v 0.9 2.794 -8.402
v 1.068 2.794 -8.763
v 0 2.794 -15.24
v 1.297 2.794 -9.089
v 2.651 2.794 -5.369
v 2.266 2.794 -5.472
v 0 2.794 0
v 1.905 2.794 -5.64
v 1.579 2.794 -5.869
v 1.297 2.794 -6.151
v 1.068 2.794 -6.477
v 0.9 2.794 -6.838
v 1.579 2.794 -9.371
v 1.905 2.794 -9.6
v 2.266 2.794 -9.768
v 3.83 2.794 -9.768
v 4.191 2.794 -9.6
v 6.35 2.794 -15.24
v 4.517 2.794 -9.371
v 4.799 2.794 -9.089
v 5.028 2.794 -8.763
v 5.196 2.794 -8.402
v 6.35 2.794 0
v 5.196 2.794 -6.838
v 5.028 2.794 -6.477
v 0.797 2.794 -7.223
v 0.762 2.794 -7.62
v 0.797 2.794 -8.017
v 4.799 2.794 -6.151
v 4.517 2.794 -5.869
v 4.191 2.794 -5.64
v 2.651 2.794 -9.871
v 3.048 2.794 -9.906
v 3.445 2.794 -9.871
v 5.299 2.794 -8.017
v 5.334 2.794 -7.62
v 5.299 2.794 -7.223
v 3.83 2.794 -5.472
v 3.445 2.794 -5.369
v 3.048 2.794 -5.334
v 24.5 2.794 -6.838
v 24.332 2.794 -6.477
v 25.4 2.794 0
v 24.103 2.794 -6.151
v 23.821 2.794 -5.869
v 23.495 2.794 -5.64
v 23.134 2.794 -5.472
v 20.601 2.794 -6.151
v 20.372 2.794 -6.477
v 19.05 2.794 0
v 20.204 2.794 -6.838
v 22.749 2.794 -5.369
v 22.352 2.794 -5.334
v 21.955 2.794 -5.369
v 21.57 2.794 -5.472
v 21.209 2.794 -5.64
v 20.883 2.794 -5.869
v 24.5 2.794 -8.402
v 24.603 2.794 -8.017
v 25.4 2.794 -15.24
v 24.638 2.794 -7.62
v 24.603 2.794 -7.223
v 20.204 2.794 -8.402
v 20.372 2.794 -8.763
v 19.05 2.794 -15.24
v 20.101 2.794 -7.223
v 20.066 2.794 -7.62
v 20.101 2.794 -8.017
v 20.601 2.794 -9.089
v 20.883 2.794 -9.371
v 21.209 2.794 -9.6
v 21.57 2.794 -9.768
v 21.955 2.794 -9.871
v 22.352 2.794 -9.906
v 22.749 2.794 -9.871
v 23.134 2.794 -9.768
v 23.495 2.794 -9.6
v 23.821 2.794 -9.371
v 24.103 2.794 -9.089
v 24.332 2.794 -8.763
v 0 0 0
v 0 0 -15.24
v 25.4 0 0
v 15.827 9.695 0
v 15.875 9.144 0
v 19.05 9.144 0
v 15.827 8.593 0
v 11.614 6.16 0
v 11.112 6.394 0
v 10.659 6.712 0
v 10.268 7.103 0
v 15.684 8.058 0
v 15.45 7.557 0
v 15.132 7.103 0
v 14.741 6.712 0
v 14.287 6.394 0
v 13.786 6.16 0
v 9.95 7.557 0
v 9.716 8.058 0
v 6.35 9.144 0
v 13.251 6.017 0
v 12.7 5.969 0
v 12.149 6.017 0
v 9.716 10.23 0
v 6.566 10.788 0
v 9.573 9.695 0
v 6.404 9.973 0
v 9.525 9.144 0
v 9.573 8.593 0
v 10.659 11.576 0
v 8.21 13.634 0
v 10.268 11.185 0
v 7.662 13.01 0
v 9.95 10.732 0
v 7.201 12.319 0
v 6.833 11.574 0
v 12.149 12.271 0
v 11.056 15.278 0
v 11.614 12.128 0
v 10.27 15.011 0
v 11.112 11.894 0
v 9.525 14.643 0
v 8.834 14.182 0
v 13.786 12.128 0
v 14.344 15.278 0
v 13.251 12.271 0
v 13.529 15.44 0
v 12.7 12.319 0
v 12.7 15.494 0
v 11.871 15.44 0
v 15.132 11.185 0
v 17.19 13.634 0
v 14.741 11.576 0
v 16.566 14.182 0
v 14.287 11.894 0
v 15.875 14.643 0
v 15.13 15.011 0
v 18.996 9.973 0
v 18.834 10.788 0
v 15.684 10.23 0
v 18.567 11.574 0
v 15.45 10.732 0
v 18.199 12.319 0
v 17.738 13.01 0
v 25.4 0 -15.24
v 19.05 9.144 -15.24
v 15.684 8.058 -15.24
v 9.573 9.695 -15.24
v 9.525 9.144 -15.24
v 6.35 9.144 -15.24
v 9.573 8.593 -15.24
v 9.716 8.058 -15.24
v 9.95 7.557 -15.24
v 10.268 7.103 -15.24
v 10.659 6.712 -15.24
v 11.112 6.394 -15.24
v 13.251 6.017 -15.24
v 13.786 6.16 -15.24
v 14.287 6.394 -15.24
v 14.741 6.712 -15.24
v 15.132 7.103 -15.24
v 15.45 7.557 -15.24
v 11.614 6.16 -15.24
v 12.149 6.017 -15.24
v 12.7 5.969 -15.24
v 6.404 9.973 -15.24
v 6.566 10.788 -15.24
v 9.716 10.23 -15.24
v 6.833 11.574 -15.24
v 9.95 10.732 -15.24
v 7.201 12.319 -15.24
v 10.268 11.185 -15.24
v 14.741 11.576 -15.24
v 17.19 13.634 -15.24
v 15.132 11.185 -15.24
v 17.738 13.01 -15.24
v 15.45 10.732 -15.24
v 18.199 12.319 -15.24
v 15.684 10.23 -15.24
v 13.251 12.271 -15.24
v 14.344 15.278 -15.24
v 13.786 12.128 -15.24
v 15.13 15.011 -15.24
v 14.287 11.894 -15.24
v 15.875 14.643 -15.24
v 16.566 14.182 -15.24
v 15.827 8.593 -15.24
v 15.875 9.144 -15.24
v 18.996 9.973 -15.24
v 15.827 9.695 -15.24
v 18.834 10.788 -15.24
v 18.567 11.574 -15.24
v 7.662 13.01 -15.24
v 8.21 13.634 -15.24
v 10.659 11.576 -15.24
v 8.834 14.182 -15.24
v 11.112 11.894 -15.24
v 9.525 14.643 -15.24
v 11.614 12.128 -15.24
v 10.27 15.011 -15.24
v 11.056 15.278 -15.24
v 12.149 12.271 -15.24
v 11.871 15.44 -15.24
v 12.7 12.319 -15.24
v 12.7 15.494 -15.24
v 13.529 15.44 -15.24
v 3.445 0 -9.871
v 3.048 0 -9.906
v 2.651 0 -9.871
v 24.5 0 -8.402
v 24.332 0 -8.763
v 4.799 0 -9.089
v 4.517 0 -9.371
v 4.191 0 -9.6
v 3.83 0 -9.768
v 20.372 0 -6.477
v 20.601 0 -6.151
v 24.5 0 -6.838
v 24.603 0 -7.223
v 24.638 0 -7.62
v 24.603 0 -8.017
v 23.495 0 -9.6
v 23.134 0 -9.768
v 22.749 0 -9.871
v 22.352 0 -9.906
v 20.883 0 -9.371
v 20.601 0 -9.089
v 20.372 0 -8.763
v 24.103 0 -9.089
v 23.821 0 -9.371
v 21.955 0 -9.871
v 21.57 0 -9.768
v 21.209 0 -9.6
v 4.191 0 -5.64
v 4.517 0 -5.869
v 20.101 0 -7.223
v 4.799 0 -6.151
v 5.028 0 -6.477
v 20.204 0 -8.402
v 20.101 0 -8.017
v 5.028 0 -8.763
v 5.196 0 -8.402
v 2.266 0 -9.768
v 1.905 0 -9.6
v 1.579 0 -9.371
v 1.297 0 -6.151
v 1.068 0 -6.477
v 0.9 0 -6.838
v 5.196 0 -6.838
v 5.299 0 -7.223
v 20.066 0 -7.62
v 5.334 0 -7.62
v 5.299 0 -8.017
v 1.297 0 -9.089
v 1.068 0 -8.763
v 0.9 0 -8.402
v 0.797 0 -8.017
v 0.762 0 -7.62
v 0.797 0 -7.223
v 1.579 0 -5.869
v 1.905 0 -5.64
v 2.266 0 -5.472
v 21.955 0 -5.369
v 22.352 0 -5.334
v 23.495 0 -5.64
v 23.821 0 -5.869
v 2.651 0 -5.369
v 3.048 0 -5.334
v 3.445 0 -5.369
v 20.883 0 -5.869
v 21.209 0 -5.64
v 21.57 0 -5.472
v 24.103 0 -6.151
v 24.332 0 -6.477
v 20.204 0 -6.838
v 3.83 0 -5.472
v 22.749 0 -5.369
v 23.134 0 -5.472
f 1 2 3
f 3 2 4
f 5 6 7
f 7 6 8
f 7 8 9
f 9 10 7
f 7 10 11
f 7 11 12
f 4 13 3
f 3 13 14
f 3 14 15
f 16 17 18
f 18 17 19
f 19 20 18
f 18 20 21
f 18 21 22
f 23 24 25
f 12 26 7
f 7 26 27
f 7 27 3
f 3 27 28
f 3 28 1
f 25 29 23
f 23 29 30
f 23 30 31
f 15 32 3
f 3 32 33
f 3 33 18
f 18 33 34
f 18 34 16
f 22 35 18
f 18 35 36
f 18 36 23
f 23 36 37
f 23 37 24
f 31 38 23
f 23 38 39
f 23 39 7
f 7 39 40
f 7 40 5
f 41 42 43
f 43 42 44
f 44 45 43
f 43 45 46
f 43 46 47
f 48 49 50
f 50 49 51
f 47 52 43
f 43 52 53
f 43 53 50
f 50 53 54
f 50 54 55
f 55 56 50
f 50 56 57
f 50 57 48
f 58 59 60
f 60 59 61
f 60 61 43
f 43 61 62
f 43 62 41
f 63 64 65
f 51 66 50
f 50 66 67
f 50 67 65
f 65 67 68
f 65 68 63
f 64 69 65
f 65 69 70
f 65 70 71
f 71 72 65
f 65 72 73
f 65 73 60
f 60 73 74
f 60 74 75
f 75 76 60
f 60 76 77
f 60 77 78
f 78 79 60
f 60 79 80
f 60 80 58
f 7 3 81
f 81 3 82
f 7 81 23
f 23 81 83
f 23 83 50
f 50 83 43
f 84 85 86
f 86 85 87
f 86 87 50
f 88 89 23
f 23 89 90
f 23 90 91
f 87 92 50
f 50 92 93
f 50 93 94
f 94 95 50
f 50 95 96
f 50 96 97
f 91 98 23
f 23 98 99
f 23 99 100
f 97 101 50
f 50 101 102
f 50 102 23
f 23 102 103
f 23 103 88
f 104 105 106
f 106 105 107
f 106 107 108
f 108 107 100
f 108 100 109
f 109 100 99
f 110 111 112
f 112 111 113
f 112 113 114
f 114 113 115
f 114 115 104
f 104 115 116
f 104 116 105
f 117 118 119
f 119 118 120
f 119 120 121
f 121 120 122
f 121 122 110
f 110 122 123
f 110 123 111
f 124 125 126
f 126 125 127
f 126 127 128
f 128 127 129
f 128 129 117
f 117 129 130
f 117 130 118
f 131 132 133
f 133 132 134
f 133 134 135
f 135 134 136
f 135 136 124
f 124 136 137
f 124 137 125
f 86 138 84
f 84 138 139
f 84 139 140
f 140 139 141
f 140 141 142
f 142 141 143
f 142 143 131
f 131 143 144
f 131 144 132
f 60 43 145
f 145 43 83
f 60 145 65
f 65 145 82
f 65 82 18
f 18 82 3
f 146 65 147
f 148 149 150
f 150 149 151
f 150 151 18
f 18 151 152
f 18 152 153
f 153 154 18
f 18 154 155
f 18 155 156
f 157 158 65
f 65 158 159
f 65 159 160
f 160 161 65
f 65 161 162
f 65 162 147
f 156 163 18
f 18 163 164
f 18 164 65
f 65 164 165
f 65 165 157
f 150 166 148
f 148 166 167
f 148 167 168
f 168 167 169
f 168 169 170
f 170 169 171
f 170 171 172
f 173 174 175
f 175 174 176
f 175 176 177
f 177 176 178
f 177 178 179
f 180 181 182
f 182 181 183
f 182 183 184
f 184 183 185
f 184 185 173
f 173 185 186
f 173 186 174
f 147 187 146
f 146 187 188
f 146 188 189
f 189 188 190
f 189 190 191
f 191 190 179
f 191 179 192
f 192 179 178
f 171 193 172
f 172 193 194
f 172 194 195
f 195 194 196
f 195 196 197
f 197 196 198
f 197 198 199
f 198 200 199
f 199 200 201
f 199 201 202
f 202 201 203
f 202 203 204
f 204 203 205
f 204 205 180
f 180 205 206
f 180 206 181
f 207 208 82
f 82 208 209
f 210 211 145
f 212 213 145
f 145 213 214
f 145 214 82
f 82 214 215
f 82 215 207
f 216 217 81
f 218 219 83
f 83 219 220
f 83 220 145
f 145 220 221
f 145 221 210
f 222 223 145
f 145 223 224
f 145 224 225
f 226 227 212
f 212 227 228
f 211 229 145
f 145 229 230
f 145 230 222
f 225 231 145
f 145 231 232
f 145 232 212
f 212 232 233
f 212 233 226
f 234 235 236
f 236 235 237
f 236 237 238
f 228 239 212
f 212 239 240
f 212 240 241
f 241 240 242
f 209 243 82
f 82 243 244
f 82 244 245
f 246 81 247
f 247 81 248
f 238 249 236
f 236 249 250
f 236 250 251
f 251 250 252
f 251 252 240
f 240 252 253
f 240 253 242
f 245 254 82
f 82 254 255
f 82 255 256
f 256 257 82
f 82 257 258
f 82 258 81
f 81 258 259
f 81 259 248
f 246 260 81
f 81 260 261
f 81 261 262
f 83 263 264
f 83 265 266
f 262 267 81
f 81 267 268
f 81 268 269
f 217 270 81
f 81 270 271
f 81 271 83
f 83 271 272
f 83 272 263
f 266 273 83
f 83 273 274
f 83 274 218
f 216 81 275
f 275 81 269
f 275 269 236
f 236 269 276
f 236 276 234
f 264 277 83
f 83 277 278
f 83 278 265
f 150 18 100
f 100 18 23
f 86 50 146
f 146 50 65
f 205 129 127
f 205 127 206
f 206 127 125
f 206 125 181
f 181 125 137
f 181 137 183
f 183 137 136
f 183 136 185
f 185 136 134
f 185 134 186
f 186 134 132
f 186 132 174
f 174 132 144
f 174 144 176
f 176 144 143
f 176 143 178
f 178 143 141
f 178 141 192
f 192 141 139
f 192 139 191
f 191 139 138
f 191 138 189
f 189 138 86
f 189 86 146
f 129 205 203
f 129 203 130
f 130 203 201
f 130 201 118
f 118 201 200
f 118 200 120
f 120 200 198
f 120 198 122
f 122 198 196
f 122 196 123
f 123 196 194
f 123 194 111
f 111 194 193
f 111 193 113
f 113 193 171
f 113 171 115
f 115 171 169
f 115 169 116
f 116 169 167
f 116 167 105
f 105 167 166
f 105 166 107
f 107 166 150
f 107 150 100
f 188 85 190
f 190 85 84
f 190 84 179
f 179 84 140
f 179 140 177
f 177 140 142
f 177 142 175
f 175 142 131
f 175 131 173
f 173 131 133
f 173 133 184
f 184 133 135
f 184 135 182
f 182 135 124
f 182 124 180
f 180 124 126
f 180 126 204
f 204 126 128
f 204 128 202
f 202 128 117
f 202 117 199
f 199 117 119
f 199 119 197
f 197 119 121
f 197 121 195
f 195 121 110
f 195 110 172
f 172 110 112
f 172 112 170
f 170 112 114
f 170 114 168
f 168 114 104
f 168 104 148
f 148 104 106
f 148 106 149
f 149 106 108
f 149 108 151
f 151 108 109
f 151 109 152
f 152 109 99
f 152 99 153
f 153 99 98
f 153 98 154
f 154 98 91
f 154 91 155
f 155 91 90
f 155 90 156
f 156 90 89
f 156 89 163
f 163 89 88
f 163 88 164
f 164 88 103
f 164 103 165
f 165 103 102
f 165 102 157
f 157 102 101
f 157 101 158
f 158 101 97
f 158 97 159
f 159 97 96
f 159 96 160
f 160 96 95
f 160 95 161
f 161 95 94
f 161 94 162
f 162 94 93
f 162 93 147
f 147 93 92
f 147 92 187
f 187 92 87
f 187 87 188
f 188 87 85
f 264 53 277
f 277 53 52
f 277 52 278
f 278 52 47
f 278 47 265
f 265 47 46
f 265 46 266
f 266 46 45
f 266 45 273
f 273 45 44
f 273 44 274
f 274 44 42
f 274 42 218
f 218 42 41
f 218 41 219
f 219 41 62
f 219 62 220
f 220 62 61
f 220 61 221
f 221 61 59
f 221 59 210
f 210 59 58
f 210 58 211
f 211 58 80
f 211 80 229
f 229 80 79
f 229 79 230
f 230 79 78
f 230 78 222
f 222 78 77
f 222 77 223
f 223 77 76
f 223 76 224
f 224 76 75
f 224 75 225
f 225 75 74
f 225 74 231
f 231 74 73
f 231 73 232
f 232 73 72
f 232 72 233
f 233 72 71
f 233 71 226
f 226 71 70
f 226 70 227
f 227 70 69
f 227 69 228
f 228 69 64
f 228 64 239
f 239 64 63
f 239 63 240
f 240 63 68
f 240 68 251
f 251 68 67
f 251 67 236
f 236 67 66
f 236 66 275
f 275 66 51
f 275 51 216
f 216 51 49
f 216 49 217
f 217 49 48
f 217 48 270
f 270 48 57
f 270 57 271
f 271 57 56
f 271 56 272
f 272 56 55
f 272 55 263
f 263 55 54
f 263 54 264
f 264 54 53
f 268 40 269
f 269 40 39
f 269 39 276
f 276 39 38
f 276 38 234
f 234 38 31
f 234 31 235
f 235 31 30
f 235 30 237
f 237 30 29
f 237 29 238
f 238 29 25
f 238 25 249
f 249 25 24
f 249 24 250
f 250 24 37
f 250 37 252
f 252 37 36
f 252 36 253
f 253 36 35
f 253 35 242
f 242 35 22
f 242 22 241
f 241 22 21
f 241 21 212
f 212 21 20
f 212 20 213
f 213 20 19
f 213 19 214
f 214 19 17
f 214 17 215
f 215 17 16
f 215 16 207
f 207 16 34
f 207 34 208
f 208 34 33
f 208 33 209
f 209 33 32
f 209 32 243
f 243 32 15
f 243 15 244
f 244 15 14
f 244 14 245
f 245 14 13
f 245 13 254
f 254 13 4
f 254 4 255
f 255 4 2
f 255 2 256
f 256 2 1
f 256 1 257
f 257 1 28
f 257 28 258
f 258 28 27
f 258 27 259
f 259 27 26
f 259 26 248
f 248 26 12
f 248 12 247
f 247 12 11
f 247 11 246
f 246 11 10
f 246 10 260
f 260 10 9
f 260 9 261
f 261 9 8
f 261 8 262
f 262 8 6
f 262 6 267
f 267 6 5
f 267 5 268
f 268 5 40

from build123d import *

# Parameters (mm, degrees)
SKETCH1_W           = 25.4
SKETCH1_H           = 15.24
BOSS_EXTRUDE1_DEPTH = 2.794
SKETCH2_W           = 12.7
SKETCH2_H           = 15.24
BOSS_EXTRUDE2_DEPTH = 12.7
FILLET1_R           = 6.35
SKETCH3_R           = 3.175
CUT_EXTRUDE1_DEPTH  = 34.428754628
SKETCH4_R           = 2.286
CUT_EXTRUDE2_DEPTH  = 33.228986953


with BuildPart() as part:
    # Sketch1 → Boss-Extrude1 (new body)
    with BuildSketch(Plane(origin=(0, 0, 0), x_dir=(1, 0, 0), z_dir=(0, 1, 0))):
        with Locations((12.7, 7.62)):
            Rectangle(SKETCH1_W, SKETCH1_H)
    extrude(amount=BOSS_EXTRUDE1_DEPTH)

    # Sketch2 → Boss-Extrude2 (add)
    with BuildSketch(Plane(origin=(0, 2.794, 0), x_dir=(1, 0, 0), z_dir=(0, 1, 0))):
        with Locations((12.7, 7.62)):
            Rectangle(SKETCH2_W, SKETCH2_H)
    extrude(amount=BOSS_EXTRUDE2_DEPTH)

    # Fillet1
    fillet1_edges = [part.edges().sort_by_distance(p)[0] for p in [
        (6.35, 15.494, -7.62),
        (19.05, 15.494, -7.62),
    ]]
    fillet(fillet1_edges, radius=FILLET1_R - 0.0001)  # a hair under: the kernel refuses the full size

    # Sketch3 → Cut-Extrude1 (cut, through all)
    with BuildSketch(Plane.XY):
        with Locations((12.7, 9.144)):
            Circle(SKETCH3_R)
    extrude(amount=-CUT_EXTRUDE1_DEPTH, mode=Mode.SUBTRACT)

    # Sketch4 → Cut-Extrude2 (cut, through all)
    with BuildSketch(Plane(origin=(0, 2.794, 0), x_dir=(1, 0, 0), z_dir=(0, 1, 0))):
        with Locations(Location((3.048, 7.62, 0), (0, 0, 270))):
            Circle(SKETCH4_R)
        with Locations(Location((22.352, 7.62, 0), (0, 0, 270))):
            Circle(SKETCH4_R)
    extrude(amount=-CUT_EXTRUDE2_DEPTH, mode=Mode.SUBTRACT)


solid = part.part
